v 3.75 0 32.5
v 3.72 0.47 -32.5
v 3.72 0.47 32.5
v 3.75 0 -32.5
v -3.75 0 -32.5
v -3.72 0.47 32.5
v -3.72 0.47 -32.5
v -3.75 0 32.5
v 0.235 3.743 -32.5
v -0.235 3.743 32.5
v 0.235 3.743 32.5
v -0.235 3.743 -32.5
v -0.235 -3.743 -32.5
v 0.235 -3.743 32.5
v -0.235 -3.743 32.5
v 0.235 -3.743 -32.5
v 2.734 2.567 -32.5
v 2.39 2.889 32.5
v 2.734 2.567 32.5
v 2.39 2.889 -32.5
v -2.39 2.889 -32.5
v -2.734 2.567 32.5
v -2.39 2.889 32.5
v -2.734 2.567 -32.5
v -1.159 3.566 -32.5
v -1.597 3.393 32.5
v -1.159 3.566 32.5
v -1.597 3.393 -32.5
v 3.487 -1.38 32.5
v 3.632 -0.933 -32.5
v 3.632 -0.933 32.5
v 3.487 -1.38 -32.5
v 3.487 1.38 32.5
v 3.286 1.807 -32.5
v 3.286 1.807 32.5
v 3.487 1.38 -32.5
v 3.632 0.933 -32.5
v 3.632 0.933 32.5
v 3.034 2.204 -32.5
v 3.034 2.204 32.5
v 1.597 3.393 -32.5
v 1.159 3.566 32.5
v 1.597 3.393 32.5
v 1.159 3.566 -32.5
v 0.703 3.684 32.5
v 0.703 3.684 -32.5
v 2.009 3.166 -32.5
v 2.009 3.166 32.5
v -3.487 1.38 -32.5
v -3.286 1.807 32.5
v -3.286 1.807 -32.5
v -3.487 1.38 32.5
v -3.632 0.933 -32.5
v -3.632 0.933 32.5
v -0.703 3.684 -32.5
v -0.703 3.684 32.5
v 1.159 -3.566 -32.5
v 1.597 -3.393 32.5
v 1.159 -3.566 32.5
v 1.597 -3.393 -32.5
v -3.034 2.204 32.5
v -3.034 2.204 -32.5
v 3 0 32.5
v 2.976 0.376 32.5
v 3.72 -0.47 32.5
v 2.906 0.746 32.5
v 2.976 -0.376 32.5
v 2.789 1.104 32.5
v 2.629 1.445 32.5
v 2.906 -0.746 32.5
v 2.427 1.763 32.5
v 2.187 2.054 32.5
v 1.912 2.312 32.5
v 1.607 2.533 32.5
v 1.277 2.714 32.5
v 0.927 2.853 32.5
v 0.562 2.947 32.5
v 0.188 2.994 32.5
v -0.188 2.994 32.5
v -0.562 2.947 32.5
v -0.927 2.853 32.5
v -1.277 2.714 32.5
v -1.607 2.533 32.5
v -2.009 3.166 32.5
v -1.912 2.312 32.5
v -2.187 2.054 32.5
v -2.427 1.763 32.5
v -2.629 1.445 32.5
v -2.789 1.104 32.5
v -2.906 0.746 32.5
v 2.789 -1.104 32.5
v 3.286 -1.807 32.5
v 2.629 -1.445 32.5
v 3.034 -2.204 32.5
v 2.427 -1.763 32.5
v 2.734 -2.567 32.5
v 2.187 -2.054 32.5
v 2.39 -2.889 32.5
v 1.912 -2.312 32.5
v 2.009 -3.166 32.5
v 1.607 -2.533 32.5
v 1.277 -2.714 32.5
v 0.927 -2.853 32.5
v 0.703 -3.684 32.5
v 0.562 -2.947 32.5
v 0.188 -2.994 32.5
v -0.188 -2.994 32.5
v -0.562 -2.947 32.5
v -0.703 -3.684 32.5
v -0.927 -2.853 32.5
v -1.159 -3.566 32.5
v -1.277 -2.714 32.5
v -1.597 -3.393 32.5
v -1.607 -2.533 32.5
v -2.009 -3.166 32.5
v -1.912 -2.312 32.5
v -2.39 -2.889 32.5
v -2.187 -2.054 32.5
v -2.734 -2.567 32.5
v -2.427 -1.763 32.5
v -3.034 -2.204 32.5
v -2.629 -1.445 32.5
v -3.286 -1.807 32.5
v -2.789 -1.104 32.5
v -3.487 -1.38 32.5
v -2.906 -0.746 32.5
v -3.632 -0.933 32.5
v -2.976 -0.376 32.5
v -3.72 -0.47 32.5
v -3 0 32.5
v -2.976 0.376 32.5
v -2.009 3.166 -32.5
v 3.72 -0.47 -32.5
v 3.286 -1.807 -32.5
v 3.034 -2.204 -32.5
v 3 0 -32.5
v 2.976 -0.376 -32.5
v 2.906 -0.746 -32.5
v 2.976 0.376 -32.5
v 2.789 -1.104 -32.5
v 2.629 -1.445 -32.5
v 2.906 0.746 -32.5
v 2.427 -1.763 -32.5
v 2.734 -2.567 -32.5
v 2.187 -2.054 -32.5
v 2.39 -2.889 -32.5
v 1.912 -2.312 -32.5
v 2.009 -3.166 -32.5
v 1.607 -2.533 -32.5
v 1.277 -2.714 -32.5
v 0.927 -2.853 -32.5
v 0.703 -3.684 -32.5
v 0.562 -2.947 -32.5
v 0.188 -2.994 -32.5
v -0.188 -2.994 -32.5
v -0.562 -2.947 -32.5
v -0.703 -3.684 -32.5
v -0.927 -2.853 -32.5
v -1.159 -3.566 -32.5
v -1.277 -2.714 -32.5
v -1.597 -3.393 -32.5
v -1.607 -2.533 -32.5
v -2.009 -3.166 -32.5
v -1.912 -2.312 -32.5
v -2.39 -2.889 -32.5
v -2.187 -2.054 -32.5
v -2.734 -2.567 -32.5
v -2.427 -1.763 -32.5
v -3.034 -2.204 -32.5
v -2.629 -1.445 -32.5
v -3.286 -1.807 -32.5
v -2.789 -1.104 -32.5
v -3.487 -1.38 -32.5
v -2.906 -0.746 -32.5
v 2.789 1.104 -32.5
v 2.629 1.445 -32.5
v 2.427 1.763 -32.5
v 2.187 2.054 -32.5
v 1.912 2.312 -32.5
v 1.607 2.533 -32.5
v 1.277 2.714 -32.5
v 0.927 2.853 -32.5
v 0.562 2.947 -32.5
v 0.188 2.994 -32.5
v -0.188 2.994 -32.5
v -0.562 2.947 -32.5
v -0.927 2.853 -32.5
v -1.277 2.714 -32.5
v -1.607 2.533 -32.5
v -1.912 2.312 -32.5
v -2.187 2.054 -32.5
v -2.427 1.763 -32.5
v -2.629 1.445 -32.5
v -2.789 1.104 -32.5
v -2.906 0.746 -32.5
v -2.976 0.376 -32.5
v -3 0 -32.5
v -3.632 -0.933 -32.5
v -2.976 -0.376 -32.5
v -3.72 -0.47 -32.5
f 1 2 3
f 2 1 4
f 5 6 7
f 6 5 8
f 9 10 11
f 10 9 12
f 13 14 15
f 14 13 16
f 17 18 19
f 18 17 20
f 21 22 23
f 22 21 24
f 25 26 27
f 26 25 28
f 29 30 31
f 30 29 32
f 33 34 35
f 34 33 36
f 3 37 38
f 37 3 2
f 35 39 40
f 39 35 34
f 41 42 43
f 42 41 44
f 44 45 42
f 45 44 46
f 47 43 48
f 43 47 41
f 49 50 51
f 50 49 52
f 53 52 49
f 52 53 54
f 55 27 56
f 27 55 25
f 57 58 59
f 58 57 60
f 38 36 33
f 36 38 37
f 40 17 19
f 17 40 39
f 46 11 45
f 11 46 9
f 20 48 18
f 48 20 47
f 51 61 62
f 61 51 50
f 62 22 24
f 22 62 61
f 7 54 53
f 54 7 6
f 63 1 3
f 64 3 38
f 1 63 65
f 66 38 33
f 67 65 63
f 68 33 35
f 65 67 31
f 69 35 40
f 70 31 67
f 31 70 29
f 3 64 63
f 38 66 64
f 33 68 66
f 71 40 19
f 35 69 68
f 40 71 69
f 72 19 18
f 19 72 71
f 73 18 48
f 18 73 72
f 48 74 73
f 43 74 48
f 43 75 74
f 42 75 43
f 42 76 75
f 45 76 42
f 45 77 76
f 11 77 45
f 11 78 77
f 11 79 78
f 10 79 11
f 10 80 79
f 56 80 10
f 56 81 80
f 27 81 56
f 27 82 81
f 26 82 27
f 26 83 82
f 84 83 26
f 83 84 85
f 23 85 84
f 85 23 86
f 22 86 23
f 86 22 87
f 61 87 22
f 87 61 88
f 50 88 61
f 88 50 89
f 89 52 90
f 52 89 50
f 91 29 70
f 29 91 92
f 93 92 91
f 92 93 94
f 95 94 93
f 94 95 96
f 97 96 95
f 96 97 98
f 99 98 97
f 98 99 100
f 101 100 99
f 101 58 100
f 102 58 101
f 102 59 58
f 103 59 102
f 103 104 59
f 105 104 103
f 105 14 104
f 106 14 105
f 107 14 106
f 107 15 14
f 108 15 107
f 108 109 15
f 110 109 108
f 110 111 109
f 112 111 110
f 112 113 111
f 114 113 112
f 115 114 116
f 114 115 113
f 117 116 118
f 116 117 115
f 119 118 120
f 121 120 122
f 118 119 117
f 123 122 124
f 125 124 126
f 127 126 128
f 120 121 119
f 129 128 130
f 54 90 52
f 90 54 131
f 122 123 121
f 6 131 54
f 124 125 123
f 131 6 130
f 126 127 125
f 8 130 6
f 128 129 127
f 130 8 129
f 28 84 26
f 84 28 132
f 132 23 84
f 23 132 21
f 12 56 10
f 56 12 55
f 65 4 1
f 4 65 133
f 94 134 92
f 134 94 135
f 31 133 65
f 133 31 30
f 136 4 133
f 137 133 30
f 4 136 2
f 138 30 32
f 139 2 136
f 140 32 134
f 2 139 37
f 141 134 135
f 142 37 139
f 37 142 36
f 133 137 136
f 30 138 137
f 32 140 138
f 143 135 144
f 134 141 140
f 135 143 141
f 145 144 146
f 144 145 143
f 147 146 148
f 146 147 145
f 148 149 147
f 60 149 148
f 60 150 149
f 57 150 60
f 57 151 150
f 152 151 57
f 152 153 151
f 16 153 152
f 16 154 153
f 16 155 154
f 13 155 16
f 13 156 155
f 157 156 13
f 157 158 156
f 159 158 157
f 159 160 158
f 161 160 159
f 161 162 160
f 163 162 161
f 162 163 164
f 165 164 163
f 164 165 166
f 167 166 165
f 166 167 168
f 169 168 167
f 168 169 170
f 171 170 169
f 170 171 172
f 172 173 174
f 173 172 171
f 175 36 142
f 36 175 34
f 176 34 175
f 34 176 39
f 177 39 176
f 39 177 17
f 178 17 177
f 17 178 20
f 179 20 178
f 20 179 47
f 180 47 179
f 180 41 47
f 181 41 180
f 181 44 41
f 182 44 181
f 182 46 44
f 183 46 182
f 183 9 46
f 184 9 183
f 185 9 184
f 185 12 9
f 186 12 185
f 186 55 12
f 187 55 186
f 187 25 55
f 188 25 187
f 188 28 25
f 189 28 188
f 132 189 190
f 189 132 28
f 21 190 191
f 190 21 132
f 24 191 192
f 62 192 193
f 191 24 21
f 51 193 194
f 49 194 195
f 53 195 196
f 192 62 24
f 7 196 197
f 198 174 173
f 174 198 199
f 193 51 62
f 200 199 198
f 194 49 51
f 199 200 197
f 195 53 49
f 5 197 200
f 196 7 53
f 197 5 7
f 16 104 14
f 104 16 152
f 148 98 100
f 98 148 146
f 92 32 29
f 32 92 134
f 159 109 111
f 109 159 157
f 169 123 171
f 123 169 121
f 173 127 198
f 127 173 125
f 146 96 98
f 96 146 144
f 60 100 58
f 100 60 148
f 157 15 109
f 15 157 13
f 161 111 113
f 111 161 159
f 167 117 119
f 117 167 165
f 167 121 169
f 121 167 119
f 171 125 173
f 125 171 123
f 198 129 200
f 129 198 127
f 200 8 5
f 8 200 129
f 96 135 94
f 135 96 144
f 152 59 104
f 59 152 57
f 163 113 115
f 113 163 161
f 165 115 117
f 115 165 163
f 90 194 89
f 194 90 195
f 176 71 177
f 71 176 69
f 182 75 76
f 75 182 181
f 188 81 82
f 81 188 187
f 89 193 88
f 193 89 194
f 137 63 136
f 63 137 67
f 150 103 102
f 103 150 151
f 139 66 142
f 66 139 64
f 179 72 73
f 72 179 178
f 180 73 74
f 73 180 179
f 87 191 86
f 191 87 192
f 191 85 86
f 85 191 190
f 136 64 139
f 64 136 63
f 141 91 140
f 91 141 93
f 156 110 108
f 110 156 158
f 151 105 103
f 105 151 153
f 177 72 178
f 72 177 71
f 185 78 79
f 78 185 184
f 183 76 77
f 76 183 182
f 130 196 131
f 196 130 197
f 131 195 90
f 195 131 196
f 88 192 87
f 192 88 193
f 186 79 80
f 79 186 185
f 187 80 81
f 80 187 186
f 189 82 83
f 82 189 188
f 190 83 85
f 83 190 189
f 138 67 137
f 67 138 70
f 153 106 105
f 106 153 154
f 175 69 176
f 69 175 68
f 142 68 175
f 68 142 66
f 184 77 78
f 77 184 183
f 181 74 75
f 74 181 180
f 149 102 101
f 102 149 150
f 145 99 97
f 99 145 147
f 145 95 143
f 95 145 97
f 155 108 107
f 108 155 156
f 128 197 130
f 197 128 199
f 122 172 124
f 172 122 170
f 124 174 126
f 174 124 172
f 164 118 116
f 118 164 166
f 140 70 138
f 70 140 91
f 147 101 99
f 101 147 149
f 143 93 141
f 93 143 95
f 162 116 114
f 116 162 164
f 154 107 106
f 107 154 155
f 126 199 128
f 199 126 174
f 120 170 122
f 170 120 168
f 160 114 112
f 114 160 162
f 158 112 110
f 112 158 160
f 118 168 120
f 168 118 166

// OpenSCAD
$fn = 50;


difference() {
	union() {
		translate(v = [0, 0, -32.5000000000]) {
			cylinder(h = 65, r = 3.7500000000);
		}
	}
	union() {
		translate(v = [0, 0, -100.0000000000]) {
			cylinder(h = 200, r = 3.0000000000);
		}
	}
}
